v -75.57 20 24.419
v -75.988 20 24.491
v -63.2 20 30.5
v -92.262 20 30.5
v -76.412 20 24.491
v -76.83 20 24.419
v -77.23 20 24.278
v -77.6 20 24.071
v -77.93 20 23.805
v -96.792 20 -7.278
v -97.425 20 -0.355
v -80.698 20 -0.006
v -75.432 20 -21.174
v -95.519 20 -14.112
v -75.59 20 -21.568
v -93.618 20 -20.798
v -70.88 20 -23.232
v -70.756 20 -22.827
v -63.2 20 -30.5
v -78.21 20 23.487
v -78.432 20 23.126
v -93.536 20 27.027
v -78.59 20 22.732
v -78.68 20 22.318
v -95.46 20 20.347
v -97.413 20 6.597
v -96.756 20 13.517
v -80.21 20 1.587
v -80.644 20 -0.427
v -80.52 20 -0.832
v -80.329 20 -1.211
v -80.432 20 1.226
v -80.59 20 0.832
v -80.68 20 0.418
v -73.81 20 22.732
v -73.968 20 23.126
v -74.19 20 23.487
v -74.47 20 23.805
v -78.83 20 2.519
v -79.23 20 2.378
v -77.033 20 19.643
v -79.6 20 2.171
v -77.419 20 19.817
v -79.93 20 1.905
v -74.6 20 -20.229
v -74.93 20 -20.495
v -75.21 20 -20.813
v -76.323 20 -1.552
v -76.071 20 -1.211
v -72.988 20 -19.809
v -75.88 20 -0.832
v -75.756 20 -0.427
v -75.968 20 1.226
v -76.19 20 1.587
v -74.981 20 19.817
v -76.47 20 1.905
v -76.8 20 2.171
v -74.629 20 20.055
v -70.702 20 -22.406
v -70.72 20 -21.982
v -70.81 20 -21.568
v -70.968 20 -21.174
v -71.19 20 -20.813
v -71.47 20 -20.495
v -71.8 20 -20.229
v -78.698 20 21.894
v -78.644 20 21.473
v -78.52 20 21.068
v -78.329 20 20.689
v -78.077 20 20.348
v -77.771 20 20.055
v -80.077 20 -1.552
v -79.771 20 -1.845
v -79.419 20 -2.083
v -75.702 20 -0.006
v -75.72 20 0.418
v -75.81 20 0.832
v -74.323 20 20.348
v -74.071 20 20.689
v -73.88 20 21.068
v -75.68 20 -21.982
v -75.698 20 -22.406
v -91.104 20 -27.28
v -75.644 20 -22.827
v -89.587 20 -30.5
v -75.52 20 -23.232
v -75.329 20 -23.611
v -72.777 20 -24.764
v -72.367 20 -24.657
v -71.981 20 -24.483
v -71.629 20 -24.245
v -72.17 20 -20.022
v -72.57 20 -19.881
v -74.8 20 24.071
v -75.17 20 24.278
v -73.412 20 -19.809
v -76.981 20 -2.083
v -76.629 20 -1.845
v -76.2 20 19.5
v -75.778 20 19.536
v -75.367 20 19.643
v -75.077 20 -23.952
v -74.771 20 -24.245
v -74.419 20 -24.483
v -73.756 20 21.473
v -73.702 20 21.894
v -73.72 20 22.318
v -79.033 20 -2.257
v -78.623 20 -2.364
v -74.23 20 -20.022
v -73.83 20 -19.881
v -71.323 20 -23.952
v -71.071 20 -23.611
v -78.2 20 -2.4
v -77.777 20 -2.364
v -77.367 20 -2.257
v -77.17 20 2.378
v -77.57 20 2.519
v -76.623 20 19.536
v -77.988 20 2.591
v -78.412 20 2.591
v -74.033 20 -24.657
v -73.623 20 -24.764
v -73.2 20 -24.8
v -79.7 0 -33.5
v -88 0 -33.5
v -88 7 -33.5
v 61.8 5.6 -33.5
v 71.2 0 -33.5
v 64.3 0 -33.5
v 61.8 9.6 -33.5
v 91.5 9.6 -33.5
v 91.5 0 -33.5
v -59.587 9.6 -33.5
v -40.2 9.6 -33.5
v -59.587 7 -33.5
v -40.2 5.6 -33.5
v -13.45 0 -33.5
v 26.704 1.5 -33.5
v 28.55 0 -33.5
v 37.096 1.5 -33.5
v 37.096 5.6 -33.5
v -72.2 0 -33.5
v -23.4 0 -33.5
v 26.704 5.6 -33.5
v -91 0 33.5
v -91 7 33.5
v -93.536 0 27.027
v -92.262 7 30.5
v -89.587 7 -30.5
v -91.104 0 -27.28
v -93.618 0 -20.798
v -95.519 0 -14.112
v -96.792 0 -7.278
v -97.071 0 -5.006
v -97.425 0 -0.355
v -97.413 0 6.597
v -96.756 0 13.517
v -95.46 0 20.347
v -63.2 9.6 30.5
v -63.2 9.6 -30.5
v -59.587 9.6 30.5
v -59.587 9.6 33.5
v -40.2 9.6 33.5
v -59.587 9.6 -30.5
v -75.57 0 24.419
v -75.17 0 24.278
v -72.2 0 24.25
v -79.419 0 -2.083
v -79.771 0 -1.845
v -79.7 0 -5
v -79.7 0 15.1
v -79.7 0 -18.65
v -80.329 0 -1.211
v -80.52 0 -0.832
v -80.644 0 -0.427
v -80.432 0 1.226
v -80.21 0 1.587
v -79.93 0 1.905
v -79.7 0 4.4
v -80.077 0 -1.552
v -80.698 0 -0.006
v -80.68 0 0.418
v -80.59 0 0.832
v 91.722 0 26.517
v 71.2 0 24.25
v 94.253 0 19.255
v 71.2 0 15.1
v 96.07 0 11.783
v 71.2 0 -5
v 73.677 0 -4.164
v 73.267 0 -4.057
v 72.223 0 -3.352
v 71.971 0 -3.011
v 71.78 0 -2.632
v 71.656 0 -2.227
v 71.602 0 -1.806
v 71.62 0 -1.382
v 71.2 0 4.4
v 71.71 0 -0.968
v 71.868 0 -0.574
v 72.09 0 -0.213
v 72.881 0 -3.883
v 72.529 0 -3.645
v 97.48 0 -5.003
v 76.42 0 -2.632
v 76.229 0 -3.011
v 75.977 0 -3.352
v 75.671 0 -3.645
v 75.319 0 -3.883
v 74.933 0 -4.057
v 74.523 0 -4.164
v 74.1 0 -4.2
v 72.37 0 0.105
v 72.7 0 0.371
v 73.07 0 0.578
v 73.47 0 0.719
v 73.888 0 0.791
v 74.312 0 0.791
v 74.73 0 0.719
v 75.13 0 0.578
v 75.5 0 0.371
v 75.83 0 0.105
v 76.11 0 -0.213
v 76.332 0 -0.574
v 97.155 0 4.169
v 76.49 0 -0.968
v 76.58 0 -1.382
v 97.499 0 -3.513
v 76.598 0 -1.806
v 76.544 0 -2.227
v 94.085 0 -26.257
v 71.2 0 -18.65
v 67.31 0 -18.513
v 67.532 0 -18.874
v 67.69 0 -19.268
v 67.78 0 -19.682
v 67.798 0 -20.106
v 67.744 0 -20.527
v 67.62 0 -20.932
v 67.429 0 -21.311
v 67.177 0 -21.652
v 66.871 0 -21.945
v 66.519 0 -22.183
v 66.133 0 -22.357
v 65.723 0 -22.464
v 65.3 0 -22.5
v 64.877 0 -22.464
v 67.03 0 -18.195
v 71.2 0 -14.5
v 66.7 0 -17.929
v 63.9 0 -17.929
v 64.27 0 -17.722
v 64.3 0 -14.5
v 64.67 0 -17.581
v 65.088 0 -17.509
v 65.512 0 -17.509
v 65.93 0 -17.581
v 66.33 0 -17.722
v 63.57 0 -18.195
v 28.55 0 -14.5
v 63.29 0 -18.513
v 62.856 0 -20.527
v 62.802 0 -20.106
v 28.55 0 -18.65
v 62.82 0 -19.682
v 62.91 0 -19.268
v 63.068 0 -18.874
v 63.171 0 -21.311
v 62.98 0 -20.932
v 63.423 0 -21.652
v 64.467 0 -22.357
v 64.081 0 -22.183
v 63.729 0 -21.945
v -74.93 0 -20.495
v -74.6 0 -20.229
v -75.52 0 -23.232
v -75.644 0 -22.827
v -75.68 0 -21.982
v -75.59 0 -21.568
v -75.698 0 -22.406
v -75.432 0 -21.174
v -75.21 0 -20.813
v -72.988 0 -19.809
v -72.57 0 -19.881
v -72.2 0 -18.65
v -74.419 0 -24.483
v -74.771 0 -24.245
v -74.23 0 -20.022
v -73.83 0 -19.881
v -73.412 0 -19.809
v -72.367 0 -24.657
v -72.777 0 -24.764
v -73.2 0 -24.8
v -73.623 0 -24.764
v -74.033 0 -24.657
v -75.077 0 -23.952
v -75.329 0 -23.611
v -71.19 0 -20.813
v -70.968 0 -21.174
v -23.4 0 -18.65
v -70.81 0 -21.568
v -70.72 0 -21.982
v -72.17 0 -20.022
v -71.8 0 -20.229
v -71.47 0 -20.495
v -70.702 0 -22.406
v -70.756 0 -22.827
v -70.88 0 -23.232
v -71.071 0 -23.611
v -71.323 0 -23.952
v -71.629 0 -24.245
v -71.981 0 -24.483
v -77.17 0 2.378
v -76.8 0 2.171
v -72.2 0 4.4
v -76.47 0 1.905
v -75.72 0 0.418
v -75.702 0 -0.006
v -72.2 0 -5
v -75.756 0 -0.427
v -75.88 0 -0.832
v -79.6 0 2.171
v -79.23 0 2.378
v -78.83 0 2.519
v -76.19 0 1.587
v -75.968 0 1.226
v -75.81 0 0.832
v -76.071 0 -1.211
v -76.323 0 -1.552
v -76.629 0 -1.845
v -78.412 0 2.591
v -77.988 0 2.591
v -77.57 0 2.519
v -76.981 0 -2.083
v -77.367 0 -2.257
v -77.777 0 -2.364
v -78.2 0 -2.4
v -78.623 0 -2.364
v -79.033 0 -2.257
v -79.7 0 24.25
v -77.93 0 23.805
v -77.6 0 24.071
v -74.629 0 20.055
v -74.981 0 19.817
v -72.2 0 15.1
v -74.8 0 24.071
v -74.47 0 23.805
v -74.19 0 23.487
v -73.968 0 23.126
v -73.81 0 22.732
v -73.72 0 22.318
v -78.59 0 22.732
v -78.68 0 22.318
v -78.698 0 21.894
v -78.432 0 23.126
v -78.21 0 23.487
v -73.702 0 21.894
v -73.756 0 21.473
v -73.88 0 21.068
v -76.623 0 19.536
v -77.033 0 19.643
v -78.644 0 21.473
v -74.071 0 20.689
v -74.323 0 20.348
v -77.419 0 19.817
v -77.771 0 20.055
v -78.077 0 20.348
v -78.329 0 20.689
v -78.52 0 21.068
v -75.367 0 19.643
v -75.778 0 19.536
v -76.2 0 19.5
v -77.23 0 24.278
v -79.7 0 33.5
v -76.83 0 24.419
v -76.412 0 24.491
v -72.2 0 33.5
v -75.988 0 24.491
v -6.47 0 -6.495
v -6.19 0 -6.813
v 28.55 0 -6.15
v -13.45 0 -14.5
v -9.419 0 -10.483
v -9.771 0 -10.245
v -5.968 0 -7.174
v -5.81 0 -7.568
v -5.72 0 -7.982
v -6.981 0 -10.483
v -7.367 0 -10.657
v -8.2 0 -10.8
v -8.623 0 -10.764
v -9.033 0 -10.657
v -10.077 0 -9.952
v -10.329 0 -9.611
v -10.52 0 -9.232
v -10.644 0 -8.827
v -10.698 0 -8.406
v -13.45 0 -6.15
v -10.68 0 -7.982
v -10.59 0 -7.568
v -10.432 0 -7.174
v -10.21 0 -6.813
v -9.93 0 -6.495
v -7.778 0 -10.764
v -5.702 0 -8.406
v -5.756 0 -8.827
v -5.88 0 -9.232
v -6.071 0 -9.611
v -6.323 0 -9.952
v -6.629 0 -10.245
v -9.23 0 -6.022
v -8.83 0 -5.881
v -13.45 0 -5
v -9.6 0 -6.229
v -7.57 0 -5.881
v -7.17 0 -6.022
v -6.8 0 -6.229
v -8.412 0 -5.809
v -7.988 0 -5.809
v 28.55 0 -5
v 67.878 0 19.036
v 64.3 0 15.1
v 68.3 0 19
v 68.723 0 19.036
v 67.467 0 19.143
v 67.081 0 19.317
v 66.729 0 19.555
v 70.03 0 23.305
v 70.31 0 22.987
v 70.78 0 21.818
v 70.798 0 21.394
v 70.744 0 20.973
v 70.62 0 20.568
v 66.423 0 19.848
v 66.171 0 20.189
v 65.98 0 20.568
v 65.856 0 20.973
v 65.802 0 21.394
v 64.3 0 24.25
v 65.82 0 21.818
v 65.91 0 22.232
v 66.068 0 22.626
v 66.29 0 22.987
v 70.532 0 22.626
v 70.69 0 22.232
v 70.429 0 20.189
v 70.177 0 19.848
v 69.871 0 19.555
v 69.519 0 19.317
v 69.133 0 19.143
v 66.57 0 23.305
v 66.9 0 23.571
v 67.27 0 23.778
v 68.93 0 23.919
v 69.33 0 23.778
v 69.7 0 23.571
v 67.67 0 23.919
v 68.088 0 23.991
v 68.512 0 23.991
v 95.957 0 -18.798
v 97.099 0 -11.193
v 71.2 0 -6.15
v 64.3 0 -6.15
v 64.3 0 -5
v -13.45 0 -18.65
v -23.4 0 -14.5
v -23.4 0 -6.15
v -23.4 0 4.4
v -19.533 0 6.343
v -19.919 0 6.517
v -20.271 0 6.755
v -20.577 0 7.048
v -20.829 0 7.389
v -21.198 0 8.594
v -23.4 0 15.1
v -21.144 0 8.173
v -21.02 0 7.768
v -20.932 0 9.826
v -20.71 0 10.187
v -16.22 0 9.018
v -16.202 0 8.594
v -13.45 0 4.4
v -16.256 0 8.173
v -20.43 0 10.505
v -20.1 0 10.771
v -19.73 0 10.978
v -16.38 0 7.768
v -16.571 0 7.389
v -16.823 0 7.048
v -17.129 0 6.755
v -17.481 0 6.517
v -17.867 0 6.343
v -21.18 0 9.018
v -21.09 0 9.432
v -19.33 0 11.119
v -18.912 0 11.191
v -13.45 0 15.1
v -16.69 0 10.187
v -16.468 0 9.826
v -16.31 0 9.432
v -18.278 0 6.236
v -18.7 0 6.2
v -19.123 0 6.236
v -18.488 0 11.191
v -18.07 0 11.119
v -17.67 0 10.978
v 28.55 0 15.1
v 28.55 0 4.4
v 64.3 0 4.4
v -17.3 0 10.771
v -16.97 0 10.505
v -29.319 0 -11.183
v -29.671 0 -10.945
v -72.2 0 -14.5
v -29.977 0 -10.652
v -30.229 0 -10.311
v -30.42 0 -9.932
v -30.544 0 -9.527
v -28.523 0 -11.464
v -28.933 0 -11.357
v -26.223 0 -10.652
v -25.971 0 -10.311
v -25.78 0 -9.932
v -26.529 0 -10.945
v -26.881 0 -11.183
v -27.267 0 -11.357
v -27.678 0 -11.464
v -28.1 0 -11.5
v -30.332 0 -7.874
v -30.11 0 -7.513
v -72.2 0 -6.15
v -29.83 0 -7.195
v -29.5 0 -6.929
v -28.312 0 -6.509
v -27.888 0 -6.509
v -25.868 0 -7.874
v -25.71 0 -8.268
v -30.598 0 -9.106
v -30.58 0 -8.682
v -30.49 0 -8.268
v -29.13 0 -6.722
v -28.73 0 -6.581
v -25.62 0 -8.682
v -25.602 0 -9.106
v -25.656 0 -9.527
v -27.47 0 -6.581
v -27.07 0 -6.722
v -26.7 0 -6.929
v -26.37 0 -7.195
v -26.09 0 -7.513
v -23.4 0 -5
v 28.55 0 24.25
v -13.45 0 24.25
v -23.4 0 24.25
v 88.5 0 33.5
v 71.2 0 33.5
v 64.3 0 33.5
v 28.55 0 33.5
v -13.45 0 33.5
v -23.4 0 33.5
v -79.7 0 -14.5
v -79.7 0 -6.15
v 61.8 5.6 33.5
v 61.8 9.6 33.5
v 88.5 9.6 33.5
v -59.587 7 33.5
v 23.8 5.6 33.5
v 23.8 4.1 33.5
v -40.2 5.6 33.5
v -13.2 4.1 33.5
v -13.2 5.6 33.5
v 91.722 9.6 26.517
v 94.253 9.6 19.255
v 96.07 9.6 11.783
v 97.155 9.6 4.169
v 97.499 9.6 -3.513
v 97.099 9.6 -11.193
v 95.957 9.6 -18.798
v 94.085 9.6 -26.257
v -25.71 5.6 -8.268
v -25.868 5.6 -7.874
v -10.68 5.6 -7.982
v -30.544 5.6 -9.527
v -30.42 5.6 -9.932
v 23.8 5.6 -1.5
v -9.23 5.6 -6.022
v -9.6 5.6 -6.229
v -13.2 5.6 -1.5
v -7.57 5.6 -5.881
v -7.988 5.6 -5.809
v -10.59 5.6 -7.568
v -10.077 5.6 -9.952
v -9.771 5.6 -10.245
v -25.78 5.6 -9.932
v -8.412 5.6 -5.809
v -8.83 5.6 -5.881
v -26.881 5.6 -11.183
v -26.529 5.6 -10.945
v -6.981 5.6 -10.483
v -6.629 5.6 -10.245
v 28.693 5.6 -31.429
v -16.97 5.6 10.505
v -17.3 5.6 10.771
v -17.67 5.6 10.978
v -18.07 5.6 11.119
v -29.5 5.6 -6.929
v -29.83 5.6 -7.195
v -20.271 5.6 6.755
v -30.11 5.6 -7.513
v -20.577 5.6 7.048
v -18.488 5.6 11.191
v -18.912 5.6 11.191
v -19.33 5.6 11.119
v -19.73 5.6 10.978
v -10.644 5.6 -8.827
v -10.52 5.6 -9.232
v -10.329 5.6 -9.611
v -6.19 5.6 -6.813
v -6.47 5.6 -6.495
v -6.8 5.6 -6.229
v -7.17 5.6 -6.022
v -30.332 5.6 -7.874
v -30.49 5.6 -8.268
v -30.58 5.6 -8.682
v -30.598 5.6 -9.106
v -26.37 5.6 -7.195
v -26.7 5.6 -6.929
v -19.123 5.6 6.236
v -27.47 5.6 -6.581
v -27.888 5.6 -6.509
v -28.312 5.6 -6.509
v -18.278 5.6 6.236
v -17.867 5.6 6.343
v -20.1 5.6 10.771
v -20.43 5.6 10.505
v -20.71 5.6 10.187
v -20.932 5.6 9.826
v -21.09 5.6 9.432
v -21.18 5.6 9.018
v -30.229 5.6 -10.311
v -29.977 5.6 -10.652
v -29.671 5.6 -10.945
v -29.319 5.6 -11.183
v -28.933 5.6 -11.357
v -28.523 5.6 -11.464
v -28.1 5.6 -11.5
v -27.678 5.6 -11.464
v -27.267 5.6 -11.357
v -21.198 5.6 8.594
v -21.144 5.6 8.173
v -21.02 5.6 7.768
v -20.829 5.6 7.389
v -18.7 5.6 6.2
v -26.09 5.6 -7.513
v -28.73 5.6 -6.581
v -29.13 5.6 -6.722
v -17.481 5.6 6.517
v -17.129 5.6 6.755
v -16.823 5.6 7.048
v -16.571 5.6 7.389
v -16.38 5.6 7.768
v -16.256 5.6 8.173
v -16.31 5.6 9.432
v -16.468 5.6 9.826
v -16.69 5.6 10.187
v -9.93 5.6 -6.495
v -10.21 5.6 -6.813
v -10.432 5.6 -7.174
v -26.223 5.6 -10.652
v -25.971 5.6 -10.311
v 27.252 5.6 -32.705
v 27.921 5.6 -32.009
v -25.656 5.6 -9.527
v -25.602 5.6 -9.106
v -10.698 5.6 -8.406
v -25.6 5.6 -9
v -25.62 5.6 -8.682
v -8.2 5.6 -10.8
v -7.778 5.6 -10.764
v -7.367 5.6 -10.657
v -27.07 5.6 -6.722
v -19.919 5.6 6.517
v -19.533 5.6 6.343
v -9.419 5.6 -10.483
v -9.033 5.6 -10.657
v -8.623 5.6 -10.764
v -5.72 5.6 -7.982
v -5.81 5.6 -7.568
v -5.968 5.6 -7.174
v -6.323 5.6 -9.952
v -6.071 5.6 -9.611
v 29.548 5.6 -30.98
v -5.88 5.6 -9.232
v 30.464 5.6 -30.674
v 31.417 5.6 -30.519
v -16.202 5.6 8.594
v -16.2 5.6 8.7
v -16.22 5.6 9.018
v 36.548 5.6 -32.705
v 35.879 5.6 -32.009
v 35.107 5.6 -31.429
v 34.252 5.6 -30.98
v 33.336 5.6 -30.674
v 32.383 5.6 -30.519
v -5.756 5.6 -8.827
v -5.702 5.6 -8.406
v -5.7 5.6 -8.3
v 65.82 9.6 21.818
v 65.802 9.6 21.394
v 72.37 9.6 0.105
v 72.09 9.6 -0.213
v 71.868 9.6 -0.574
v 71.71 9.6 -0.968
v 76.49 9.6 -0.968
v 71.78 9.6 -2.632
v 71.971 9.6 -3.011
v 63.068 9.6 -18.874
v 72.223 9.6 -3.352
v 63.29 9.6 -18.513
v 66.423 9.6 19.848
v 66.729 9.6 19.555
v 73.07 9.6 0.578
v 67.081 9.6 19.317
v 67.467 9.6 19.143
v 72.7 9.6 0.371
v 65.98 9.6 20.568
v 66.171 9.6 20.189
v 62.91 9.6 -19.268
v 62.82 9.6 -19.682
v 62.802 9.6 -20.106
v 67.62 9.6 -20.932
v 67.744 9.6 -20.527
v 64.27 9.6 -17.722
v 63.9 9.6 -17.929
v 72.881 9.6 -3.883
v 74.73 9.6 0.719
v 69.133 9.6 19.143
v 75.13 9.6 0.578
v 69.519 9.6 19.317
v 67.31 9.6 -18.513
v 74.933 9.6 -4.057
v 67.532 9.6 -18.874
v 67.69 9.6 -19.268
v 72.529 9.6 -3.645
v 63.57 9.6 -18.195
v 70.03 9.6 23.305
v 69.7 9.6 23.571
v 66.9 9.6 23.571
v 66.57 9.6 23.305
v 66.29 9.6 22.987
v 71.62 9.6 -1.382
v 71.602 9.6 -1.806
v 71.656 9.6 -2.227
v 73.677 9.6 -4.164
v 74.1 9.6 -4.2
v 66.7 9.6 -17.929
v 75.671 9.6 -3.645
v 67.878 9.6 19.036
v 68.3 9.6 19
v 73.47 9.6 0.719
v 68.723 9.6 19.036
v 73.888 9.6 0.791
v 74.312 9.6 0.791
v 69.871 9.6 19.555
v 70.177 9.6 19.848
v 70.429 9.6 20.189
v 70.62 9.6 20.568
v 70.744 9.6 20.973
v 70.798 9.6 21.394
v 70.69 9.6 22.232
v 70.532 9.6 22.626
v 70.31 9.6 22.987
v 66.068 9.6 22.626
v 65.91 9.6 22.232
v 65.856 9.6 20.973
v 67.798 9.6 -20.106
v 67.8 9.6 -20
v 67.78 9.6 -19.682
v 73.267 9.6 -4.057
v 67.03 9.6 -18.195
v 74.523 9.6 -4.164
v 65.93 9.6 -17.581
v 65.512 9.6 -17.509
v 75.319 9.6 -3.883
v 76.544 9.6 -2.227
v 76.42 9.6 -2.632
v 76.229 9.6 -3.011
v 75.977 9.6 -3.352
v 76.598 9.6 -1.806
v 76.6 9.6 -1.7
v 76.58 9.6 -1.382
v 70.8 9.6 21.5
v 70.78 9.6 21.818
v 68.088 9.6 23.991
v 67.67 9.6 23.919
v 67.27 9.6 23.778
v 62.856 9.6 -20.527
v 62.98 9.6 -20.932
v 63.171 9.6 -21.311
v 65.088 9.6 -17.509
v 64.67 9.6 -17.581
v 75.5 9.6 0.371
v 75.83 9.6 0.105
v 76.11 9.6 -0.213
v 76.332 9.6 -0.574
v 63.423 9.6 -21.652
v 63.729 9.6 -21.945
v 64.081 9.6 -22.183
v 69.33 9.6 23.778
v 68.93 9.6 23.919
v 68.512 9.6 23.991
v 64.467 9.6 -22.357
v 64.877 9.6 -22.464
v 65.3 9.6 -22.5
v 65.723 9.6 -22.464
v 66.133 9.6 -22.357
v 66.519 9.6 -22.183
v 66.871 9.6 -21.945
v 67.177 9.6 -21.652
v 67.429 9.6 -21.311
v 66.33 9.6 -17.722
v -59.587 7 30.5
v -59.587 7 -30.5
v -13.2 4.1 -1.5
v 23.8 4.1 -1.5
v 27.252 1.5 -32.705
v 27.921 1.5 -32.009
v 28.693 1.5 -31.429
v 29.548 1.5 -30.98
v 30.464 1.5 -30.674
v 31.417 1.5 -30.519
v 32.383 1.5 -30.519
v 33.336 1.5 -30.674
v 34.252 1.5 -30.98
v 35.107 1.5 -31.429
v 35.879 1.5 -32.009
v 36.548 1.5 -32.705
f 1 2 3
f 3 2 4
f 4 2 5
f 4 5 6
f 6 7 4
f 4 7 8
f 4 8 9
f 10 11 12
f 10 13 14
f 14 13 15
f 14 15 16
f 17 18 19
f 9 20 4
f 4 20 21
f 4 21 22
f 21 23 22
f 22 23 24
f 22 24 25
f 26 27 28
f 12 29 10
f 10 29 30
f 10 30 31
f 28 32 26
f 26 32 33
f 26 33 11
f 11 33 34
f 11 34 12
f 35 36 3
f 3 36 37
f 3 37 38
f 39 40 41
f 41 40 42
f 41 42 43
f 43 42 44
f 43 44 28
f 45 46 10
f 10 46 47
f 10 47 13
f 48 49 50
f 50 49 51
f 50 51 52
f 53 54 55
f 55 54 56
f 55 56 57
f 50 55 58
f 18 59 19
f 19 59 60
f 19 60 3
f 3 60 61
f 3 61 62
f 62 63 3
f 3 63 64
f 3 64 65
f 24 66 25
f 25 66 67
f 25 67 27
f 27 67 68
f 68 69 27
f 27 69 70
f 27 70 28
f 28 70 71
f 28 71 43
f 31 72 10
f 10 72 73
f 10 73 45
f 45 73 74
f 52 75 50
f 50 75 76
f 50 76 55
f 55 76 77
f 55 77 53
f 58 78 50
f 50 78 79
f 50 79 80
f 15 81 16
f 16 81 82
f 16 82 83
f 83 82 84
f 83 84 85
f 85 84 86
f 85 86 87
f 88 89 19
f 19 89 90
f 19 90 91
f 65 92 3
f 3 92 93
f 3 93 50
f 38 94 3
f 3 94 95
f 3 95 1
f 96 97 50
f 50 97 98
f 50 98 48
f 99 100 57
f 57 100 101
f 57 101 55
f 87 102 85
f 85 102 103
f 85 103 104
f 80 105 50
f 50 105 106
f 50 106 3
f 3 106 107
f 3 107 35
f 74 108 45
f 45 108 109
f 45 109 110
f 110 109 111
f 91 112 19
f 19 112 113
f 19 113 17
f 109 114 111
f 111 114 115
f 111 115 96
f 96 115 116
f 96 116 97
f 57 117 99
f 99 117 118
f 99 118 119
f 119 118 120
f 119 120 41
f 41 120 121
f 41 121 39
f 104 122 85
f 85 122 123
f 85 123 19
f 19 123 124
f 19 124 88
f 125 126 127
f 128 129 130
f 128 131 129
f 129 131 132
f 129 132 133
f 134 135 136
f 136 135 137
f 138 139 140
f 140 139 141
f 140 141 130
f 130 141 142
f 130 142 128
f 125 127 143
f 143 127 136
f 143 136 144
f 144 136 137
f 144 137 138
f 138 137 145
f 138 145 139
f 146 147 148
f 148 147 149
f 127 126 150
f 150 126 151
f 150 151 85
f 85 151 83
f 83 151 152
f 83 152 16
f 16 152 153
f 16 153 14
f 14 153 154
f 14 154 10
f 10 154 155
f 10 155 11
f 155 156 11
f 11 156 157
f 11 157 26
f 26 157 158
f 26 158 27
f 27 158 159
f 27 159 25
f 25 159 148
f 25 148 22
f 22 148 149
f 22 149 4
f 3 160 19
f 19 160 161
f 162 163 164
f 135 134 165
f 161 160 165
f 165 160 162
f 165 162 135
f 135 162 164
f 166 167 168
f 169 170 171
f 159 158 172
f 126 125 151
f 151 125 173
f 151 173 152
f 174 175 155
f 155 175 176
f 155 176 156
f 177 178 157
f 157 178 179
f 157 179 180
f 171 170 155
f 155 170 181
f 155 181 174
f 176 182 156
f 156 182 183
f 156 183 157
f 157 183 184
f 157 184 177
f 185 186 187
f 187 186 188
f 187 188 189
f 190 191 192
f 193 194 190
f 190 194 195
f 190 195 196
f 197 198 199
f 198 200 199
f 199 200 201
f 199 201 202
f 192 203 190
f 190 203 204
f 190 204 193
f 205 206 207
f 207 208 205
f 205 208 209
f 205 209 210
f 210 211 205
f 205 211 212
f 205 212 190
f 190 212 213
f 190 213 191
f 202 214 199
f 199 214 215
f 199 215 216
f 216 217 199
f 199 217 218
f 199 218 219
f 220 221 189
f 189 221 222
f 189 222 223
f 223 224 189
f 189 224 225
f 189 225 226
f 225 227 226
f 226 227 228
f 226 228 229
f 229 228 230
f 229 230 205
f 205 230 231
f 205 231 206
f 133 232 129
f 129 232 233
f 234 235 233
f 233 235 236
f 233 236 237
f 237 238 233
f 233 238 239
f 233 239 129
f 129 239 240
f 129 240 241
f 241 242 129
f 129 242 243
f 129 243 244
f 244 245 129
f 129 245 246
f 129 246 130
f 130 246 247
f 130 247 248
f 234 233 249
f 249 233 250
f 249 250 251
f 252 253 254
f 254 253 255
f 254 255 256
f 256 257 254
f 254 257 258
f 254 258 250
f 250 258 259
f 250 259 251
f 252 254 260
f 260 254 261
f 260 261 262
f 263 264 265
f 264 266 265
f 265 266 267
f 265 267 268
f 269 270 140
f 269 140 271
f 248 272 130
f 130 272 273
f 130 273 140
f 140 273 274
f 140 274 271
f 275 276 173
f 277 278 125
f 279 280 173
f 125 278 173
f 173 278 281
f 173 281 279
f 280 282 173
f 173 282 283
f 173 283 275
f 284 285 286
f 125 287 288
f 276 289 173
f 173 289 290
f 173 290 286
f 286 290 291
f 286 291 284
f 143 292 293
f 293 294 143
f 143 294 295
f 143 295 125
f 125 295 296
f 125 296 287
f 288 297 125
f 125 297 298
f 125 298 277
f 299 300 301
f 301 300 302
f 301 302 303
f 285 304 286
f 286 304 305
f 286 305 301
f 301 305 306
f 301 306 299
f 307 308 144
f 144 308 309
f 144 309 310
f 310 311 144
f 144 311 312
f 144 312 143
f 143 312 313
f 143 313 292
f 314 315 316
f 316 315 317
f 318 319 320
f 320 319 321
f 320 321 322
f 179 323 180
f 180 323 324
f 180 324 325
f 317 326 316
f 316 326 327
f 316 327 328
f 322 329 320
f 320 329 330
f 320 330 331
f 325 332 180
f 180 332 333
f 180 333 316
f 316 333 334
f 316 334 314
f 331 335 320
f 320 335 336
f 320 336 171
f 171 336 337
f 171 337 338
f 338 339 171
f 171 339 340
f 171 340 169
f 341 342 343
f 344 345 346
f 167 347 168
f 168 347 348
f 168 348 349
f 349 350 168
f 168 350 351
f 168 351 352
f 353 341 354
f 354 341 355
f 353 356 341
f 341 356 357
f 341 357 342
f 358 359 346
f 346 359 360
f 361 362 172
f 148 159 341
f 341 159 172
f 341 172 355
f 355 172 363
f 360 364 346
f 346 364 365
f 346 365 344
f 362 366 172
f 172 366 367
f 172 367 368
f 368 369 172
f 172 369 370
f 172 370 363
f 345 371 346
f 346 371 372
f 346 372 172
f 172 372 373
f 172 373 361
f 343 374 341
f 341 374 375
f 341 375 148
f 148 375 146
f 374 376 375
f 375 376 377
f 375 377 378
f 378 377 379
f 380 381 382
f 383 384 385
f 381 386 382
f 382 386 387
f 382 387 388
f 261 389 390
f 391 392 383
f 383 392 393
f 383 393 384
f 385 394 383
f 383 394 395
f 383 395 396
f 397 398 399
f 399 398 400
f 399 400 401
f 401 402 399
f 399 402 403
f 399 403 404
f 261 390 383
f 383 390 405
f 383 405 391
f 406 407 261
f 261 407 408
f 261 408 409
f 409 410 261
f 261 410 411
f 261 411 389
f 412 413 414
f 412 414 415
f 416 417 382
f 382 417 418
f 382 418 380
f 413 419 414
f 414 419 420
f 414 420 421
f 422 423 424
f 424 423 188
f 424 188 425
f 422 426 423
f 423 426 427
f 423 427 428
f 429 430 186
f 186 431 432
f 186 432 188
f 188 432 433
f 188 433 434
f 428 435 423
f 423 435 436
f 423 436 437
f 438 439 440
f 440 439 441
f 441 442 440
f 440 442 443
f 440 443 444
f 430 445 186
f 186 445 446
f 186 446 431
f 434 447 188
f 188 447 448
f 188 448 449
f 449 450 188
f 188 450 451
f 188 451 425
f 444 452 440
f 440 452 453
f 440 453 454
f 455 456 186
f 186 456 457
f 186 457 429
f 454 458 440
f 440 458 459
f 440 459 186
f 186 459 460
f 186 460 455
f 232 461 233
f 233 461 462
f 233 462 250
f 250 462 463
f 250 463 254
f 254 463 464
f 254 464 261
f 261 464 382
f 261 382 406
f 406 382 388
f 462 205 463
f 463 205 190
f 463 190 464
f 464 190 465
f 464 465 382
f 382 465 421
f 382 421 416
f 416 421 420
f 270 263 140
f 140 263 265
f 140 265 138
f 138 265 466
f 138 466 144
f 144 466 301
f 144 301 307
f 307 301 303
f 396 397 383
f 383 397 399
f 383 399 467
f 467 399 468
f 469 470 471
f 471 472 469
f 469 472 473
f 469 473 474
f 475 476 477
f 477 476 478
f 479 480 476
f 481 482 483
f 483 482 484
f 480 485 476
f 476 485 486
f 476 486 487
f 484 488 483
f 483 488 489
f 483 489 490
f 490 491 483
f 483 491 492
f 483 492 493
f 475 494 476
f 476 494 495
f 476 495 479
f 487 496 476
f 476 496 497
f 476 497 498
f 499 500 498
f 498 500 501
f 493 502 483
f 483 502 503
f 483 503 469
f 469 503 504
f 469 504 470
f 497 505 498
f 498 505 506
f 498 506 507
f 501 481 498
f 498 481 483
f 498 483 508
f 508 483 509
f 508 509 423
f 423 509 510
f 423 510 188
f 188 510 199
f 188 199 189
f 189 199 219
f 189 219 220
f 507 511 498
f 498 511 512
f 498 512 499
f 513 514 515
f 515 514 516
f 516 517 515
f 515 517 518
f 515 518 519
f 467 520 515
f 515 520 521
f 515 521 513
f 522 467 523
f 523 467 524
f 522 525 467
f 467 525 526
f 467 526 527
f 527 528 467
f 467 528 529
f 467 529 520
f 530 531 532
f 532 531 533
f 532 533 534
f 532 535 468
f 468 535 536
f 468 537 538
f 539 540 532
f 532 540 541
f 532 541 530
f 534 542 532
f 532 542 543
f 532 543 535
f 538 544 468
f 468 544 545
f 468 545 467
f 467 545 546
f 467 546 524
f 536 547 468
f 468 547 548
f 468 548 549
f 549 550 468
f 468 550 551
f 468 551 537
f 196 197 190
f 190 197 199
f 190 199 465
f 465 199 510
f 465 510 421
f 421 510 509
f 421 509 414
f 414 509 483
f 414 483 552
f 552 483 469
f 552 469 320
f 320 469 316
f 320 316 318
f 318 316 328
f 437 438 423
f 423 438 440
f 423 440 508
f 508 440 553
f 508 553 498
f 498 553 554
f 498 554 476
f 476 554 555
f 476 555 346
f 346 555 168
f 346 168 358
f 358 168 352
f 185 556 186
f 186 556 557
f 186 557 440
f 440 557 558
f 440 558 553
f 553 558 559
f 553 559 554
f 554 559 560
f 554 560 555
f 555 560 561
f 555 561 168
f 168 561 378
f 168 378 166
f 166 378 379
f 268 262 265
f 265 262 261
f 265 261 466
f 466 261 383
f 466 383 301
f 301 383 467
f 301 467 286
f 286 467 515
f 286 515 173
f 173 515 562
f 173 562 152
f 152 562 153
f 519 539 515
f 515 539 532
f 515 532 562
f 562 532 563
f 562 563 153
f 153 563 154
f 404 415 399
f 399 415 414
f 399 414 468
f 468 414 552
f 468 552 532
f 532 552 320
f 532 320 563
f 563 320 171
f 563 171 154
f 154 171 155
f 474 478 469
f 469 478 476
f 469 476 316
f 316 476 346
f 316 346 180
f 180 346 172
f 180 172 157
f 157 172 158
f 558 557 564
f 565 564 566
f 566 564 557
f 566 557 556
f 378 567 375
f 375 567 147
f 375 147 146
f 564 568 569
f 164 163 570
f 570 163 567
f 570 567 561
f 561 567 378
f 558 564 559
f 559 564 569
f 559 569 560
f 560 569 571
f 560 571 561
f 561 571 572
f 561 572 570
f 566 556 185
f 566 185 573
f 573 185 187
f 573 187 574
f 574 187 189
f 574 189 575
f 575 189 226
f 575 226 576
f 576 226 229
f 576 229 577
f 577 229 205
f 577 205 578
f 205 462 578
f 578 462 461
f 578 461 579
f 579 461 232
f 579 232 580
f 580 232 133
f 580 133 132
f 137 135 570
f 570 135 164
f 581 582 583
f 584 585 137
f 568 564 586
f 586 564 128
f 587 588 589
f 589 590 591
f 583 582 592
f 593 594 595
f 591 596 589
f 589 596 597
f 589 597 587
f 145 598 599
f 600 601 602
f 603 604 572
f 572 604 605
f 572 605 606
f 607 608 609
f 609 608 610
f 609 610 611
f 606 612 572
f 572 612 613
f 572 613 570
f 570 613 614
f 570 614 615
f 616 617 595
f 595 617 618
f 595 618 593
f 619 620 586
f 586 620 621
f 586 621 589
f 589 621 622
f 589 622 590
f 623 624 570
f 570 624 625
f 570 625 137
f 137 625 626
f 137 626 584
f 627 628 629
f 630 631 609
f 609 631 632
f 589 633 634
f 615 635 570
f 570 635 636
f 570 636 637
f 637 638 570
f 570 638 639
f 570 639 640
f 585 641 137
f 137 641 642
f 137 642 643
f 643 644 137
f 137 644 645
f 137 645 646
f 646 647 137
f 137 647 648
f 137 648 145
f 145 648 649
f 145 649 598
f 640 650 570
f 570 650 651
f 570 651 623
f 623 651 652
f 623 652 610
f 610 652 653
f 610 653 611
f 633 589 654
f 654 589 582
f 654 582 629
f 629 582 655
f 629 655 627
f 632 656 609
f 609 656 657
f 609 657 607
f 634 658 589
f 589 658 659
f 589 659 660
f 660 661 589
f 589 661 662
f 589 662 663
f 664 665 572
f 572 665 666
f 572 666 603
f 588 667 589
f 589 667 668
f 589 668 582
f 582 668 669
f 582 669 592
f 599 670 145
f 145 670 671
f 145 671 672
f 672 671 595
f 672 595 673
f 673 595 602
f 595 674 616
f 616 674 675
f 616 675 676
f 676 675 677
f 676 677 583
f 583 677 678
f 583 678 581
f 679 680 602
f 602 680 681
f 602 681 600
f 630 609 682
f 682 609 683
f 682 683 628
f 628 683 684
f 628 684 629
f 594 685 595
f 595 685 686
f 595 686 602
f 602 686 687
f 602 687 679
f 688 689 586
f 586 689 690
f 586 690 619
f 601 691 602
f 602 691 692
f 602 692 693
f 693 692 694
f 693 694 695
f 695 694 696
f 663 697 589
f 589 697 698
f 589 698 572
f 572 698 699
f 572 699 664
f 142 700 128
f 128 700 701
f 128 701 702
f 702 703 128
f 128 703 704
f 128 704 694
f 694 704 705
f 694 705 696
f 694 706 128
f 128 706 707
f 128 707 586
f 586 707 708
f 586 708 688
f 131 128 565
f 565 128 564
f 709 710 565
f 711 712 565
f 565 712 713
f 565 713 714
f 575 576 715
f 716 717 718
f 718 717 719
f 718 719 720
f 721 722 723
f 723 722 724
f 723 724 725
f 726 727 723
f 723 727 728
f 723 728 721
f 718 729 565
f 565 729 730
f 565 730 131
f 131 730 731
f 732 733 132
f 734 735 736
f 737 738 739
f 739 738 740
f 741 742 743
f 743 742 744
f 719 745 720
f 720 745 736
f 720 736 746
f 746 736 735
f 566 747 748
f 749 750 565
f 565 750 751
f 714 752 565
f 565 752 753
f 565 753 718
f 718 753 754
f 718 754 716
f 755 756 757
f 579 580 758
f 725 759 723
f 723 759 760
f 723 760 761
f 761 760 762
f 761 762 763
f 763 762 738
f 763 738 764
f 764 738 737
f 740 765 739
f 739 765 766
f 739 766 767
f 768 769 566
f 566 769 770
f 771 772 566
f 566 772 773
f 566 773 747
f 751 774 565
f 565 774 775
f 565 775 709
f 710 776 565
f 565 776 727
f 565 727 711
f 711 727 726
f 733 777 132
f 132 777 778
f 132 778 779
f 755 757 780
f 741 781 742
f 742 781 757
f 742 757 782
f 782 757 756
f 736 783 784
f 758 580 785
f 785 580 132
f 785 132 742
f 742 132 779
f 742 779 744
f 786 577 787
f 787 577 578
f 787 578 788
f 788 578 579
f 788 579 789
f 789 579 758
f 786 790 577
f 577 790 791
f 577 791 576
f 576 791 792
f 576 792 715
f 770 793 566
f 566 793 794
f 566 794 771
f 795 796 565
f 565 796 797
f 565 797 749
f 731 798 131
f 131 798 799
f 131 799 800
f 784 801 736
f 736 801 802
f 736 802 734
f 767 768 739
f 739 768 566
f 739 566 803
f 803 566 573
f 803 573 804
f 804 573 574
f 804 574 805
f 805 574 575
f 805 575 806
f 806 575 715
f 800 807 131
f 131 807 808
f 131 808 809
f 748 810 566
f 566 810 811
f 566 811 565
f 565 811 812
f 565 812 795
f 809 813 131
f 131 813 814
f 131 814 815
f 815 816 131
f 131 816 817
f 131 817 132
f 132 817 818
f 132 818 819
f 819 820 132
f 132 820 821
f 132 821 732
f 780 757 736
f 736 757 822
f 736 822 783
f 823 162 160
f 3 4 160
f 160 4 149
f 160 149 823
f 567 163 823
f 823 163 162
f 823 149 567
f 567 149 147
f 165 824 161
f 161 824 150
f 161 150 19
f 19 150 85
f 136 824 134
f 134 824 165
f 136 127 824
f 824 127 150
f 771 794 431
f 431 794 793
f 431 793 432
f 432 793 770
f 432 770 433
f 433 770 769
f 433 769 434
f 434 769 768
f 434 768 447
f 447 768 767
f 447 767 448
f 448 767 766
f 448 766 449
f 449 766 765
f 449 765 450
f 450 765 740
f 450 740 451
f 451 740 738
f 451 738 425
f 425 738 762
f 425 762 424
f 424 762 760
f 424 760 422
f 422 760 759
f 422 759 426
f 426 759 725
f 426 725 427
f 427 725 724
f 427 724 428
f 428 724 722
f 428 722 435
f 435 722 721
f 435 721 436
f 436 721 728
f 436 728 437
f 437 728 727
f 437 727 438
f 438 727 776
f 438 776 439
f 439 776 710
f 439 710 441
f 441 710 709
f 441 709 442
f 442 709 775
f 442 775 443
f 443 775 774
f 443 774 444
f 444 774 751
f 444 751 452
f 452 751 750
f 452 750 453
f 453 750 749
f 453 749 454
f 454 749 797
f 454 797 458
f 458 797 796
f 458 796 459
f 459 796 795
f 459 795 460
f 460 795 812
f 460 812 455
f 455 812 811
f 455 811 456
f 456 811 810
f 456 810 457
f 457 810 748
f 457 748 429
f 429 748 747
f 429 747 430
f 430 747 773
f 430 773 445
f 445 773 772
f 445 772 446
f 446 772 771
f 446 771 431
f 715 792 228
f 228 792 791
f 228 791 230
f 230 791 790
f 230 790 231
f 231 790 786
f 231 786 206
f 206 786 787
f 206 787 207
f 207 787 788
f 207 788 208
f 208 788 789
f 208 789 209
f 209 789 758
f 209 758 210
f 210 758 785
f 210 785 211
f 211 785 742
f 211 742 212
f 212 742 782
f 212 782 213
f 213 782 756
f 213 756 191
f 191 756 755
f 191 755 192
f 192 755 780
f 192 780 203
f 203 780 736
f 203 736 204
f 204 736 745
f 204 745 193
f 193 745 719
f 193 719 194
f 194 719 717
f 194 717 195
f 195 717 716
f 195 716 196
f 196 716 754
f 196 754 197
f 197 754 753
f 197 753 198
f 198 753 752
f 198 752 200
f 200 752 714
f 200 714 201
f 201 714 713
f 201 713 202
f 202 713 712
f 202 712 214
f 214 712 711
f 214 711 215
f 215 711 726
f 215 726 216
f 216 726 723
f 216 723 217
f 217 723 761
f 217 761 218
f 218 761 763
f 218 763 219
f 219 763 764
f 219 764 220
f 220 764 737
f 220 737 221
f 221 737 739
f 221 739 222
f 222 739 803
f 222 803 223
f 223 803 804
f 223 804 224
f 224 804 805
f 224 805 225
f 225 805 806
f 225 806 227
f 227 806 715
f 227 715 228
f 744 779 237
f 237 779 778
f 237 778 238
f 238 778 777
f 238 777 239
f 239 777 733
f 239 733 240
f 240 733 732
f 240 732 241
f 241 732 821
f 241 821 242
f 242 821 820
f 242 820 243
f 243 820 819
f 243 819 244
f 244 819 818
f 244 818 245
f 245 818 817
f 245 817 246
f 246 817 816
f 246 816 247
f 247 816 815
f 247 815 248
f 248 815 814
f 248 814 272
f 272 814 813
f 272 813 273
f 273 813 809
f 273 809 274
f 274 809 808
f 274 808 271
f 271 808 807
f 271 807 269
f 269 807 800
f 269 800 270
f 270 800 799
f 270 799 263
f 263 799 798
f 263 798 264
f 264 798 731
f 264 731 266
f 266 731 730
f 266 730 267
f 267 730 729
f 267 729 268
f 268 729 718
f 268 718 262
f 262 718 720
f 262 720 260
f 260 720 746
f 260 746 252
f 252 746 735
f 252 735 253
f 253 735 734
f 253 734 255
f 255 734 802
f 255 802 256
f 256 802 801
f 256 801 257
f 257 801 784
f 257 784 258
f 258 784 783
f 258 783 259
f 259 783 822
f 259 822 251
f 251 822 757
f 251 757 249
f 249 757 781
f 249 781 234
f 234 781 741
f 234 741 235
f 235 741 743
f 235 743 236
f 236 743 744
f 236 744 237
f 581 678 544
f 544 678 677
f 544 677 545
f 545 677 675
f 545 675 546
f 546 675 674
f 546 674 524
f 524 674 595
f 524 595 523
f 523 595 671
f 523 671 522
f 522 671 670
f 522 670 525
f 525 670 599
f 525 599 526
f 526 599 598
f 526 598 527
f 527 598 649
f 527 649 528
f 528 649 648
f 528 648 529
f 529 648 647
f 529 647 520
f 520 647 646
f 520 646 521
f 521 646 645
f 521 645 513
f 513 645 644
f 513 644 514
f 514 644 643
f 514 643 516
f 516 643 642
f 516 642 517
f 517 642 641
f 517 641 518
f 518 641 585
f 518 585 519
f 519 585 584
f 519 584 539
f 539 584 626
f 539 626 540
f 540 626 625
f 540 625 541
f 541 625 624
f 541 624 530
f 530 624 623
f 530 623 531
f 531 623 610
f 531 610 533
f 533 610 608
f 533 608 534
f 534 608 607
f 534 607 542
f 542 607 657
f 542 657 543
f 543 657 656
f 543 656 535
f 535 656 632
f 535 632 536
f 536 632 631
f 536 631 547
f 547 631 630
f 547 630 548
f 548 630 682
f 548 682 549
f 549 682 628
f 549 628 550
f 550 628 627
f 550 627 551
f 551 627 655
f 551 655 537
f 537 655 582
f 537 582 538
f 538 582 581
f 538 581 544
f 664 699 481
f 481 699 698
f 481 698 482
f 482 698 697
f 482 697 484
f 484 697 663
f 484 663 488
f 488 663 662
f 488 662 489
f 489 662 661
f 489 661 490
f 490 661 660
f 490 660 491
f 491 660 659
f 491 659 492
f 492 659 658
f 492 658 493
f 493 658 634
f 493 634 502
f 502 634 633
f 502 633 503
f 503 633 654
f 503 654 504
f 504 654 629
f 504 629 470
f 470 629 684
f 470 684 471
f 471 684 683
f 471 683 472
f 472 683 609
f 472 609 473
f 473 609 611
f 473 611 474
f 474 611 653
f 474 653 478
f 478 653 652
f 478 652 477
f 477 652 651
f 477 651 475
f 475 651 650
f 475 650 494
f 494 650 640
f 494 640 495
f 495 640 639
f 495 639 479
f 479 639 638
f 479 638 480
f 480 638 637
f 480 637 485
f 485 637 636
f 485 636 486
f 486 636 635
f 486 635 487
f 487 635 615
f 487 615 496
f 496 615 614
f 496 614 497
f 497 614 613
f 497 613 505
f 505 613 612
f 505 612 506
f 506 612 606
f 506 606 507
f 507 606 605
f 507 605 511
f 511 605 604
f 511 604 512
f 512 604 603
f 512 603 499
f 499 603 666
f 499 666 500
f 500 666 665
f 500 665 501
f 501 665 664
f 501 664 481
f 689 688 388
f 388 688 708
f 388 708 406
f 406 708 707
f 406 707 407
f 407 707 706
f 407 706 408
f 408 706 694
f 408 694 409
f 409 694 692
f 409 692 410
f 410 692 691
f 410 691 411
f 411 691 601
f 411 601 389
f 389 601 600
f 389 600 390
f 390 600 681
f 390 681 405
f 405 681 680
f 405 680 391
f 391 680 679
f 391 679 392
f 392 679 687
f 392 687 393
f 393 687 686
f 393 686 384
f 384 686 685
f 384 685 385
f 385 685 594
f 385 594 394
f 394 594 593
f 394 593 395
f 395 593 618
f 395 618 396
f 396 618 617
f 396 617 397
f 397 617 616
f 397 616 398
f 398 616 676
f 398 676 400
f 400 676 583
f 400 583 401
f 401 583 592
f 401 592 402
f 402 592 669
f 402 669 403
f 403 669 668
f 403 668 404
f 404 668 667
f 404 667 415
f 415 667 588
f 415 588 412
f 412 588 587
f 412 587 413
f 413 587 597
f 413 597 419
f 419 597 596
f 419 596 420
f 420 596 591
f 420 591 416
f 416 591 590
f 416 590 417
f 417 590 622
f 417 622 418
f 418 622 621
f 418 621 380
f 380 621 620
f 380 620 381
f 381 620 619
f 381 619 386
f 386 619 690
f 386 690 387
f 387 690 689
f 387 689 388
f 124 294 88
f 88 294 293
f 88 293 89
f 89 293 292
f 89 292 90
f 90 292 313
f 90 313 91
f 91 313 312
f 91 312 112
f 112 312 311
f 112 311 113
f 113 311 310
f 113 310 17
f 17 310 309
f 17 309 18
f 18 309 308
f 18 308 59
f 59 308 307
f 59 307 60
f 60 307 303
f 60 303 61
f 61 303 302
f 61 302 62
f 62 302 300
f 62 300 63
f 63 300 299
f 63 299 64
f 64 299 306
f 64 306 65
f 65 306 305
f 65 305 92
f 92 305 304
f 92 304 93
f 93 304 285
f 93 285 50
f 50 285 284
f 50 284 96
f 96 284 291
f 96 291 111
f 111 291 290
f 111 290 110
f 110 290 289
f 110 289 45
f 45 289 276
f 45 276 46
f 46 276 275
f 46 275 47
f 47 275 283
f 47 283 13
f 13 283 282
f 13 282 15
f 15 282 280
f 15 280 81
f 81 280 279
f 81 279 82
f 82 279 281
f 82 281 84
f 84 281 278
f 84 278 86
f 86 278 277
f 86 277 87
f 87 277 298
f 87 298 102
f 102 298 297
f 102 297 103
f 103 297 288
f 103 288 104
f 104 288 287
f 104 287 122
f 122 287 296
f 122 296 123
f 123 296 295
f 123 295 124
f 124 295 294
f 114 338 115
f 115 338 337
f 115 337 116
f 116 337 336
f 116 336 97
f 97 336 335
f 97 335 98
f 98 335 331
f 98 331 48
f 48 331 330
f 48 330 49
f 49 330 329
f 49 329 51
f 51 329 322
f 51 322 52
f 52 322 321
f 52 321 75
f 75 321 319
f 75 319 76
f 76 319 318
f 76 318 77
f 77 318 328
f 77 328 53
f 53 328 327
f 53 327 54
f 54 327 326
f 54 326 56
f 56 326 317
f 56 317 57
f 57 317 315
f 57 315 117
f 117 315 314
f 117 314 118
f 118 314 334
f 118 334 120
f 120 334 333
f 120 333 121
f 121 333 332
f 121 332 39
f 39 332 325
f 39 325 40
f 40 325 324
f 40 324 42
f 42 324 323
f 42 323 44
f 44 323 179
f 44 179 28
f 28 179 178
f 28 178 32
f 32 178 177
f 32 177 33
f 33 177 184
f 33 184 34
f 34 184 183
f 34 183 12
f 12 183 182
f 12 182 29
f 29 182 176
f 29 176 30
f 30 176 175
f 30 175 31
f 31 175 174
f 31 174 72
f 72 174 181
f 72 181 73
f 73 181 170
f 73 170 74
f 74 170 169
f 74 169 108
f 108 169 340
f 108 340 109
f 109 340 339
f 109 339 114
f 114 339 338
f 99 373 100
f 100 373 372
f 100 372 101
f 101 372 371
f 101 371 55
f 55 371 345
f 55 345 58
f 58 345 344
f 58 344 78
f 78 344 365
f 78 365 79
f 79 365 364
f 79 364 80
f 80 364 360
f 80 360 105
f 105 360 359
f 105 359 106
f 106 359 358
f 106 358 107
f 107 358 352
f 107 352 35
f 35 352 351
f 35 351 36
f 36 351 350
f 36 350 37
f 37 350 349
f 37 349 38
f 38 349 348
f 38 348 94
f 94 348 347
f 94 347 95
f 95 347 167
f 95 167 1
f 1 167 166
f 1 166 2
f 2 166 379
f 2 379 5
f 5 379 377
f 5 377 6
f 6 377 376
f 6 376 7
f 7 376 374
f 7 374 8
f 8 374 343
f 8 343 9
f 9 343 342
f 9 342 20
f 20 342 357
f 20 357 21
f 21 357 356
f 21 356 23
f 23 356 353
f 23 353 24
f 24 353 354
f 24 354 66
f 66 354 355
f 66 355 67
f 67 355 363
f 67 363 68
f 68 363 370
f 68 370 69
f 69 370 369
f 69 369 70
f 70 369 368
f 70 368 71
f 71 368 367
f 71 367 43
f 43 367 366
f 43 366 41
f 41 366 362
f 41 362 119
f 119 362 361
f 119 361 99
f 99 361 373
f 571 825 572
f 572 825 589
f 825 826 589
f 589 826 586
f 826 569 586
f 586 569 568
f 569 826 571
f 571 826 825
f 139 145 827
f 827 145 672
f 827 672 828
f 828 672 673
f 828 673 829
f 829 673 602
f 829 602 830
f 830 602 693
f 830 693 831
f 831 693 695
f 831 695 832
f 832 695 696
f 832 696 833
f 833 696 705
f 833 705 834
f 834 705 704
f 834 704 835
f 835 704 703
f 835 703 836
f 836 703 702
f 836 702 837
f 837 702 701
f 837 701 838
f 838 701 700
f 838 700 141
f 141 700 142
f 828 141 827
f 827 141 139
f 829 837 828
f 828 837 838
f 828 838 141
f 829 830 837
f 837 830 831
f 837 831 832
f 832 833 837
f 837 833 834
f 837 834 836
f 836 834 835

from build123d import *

# Parameters (mm, degrees)
SKETCH1_W           = 195
SKETCH1_H           = 67
BOSS_EXTRUDE1_DEPTH = 20
CUT_EXTRUDE1_DEPTH  = 20
CUT_EXTRUDE2_DEPTH  = 120.980206701
CUT_EXTRUDE3_START  = -13
SKETCH4_W           = 3.612655346
SKETCH4_H           = 3
CUT_EXTRUDE3_DEPTH  = 13
SKETCH6_R           = 2.5
CUT_EXTRUDE4_DEPTH  = 106.016665344
SKETCH7_W           = 37
SKETCH7_H           = 35
CUT_EXTRUDE5_DEPTH  = 1.5
CUT_EXTRUDE6_DEPTH  = 18.5


with BuildPart() as part:
    # Sketch1 → Boss-Extrude1 (new body)
    with BuildSketch(Plane(origin=(0, 0, 0), x_dir=(1, 0, 0), z_dir=(0, 1, 0))):
        Rectangle(SKETCH1_W, SKETCH1_H)
    extrude(amount=BOSS_EXTRUDE1_DEPTH)

    # Sketch2 → Cut-Extrude1 (cut)
    with BuildSketch(Plane.XZ):
        with BuildLine():
            Line((97.5, -3.219751644), (97.5, 33.5))
            Line((97.5, 33.5), (88.5, 33.5))
            ThreePointArc((88.5, 33.5), (95.217186872, 15.683556008), (97.5, -3.219751644))
        make_face()
        with BuildLine():
            Line((97.5, -33.5), (97.5, -3.219751644))
            ThreePointArc((97.5, -3.219751644), (95.985558513, -18.65423771), (91.5, -33.5))
            Line((91.5, -33.5), (97.5, -33.5))
        make_face()
        with BuildLine():
            ThreePointArc((-88, -33.5), (-95.08607052, -15.861694529), (-97.5, 2.992884749))
            Line((-97.5, 2.992884749), (-97.5, -33.5))
            Line((-97.5, -33.5), (-88, -33.5))
        make_face()
        with BuildLine():
            ThreePointArc((-97.5, 2.992884749), (-95.856964648, 18.588830376), (-91, 33.5))
            Line((-91, 33.5), (-97.5, 33.5))
            Line((-97.5, 33.5), (-97.5, 2.992884749))
        make_face()
    extrude(amount=-CUT_EXTRUDE1_DEPTH, mode=Mode.SUBTRACT)

    # Sketch3 → Cut-Extrude2 (cut, through all)
    with BuildSketch(Plane(origin=(0, 0, 33.5), x_dir=(-1, 0, 0), z_dir=(0, 0, -1))):
        Polygon((63.2, 20), (63.2, 9.6), (40.2, 9.6), (40.2, 5.6), (-61.8, 5.6), (-61.8, 9.6), (-97.5, 9.6), (-97.5, 20), align=None)
    extrude(amount=CUT_EXTRUDE2_DEPTH, mode=Mode.SUBTRACT)

    # Sketch4 → Cut-Extrude3 (cut)
    with BuildSketch(Plane(origin=(0, 20, 0), x_dir=(1, 0, 0), z_dir=(0, 1, 0)).offset(CUT_EXTRUDE3_START)):
        with BuildLine():
            Line((-63.2, 30.5), (-63.2, 33.5))
            Line((-63.2, 33.5), (-88, 33.5))
            ThreePointArc((-88, 33.5), (-88.810680862, 32.008999469), (-89.587344654, 30.5))
            Line((-89.587344654, 30.5), (-63.2, 30.5))
        make_face()
        with Locations((-61.393672327, 32)):
            Rectangle(SKETCH4_W, SKETCH4_H)
        with BuildLine():
            Line((-63.2, -33.5), (-63.2, -30.5))
            Line((-63.2, -30.5), (-92.261692194, -30.5))
            ThreePointArc((-92.261692194, -30.5), (-91.647155152, -32.006859002), (-91, -33.5))
            Line((-91, -33.5), (-63.2, -33.5))
        make_face()
        with Locations((-61.393672327, -32)):
            Rectangle(SKETCH4_W, SKETCH4_H)
    extrude(amount=CUT_EXTRUDE3_DEPTH, mode=Mode.SUBTRACT)

    # Sketch6 → Cut-Extrude4 (cut, through all)
    with BuildSketch(Plane.XZ):
        with Locations(Location((-28.1, -9, 0), (0, 0, 270))):
            Circle(SKETCH6_R)
        with Locations(Location((-8.2, -8.3, 0), (0, 0, 270))):
            Circle(SKETCH6_R)
        with Locations(Location((-18.7, 8.7, 0), (0, 0, 270))):
            Circle(SKETCH6_R)
        with Locations(Location((-76.2, 22, 0), (0, 0, 270))):
            Circle(SKETCH6_R)
        with Locations(Location((-78.2, 0.1, 0), (0, 0, 270))):
            Circle(SKETCH6_R)
        with Locations(Location((-73.2, -22.3, 0), (0, 0, 270))):
            Circle(SKETCH6_R)
        with Locations(Location((65.3, -20, 0), (0, 0, 270))):
            Circle(SKETCH6_R)
        with Locations(Location((74.1, -1.7, 0), (0, 0, 270))):
            Circle(SKETCH6_R)
        with Locations(Location((68.3, 21.5, 0), (0, 0, 270))):
            Circle(SKETCH6_R)
    extrude(amount=-CUT_EXTRUDE4_DEPTH, mode=Mode.SUBTRACT)

    # Sketch7 → Cut-Extrude5 (cut)
    with BuildSketch(Plane(origin=(0, 5.6, 0), x_dir=(1, 0, 0), z_dir=(0, 1, 0))):
        with Locations((5.3, -16)):
            Rectangle(SKETCH7_W, SKETCH7_H)
    extrude(amount=-CUT_EXTRUDE5_DEPTH, mode=Mode.SUBTRACT)

    # Sketch8 → Cut-Extrude6 (cut)
    with BuildSketch(Plane(origin=(0, 20, 0), x_dir=(1, 0, 0), z_dir=(0, 1, 0))):
        with BuildLine():
            Line((37.096152423, 33.5), (31.9, 33.5))
            Line((31.9, 33.5), (31.9, 30.5))
            ThreePointArc((31.9, 30.5), (34.9, 31.303847577), (37.096152423, 33.5))
        make_face()
        with BuildLine():
            Line((31.9, 33.5), (26.703847577, 33.5))
            ThreePointArc((26.703847577, 33.5), (28.9, 31.303847577), (31.9, 30.5))
            Line((31.9, 30.5), (31.9, 33.5))
        make_face()
    extrude(amount=-CUT_EXTRUDE6_DEPTH, mode=Mode.SUBTRACT)


solid = part.part
